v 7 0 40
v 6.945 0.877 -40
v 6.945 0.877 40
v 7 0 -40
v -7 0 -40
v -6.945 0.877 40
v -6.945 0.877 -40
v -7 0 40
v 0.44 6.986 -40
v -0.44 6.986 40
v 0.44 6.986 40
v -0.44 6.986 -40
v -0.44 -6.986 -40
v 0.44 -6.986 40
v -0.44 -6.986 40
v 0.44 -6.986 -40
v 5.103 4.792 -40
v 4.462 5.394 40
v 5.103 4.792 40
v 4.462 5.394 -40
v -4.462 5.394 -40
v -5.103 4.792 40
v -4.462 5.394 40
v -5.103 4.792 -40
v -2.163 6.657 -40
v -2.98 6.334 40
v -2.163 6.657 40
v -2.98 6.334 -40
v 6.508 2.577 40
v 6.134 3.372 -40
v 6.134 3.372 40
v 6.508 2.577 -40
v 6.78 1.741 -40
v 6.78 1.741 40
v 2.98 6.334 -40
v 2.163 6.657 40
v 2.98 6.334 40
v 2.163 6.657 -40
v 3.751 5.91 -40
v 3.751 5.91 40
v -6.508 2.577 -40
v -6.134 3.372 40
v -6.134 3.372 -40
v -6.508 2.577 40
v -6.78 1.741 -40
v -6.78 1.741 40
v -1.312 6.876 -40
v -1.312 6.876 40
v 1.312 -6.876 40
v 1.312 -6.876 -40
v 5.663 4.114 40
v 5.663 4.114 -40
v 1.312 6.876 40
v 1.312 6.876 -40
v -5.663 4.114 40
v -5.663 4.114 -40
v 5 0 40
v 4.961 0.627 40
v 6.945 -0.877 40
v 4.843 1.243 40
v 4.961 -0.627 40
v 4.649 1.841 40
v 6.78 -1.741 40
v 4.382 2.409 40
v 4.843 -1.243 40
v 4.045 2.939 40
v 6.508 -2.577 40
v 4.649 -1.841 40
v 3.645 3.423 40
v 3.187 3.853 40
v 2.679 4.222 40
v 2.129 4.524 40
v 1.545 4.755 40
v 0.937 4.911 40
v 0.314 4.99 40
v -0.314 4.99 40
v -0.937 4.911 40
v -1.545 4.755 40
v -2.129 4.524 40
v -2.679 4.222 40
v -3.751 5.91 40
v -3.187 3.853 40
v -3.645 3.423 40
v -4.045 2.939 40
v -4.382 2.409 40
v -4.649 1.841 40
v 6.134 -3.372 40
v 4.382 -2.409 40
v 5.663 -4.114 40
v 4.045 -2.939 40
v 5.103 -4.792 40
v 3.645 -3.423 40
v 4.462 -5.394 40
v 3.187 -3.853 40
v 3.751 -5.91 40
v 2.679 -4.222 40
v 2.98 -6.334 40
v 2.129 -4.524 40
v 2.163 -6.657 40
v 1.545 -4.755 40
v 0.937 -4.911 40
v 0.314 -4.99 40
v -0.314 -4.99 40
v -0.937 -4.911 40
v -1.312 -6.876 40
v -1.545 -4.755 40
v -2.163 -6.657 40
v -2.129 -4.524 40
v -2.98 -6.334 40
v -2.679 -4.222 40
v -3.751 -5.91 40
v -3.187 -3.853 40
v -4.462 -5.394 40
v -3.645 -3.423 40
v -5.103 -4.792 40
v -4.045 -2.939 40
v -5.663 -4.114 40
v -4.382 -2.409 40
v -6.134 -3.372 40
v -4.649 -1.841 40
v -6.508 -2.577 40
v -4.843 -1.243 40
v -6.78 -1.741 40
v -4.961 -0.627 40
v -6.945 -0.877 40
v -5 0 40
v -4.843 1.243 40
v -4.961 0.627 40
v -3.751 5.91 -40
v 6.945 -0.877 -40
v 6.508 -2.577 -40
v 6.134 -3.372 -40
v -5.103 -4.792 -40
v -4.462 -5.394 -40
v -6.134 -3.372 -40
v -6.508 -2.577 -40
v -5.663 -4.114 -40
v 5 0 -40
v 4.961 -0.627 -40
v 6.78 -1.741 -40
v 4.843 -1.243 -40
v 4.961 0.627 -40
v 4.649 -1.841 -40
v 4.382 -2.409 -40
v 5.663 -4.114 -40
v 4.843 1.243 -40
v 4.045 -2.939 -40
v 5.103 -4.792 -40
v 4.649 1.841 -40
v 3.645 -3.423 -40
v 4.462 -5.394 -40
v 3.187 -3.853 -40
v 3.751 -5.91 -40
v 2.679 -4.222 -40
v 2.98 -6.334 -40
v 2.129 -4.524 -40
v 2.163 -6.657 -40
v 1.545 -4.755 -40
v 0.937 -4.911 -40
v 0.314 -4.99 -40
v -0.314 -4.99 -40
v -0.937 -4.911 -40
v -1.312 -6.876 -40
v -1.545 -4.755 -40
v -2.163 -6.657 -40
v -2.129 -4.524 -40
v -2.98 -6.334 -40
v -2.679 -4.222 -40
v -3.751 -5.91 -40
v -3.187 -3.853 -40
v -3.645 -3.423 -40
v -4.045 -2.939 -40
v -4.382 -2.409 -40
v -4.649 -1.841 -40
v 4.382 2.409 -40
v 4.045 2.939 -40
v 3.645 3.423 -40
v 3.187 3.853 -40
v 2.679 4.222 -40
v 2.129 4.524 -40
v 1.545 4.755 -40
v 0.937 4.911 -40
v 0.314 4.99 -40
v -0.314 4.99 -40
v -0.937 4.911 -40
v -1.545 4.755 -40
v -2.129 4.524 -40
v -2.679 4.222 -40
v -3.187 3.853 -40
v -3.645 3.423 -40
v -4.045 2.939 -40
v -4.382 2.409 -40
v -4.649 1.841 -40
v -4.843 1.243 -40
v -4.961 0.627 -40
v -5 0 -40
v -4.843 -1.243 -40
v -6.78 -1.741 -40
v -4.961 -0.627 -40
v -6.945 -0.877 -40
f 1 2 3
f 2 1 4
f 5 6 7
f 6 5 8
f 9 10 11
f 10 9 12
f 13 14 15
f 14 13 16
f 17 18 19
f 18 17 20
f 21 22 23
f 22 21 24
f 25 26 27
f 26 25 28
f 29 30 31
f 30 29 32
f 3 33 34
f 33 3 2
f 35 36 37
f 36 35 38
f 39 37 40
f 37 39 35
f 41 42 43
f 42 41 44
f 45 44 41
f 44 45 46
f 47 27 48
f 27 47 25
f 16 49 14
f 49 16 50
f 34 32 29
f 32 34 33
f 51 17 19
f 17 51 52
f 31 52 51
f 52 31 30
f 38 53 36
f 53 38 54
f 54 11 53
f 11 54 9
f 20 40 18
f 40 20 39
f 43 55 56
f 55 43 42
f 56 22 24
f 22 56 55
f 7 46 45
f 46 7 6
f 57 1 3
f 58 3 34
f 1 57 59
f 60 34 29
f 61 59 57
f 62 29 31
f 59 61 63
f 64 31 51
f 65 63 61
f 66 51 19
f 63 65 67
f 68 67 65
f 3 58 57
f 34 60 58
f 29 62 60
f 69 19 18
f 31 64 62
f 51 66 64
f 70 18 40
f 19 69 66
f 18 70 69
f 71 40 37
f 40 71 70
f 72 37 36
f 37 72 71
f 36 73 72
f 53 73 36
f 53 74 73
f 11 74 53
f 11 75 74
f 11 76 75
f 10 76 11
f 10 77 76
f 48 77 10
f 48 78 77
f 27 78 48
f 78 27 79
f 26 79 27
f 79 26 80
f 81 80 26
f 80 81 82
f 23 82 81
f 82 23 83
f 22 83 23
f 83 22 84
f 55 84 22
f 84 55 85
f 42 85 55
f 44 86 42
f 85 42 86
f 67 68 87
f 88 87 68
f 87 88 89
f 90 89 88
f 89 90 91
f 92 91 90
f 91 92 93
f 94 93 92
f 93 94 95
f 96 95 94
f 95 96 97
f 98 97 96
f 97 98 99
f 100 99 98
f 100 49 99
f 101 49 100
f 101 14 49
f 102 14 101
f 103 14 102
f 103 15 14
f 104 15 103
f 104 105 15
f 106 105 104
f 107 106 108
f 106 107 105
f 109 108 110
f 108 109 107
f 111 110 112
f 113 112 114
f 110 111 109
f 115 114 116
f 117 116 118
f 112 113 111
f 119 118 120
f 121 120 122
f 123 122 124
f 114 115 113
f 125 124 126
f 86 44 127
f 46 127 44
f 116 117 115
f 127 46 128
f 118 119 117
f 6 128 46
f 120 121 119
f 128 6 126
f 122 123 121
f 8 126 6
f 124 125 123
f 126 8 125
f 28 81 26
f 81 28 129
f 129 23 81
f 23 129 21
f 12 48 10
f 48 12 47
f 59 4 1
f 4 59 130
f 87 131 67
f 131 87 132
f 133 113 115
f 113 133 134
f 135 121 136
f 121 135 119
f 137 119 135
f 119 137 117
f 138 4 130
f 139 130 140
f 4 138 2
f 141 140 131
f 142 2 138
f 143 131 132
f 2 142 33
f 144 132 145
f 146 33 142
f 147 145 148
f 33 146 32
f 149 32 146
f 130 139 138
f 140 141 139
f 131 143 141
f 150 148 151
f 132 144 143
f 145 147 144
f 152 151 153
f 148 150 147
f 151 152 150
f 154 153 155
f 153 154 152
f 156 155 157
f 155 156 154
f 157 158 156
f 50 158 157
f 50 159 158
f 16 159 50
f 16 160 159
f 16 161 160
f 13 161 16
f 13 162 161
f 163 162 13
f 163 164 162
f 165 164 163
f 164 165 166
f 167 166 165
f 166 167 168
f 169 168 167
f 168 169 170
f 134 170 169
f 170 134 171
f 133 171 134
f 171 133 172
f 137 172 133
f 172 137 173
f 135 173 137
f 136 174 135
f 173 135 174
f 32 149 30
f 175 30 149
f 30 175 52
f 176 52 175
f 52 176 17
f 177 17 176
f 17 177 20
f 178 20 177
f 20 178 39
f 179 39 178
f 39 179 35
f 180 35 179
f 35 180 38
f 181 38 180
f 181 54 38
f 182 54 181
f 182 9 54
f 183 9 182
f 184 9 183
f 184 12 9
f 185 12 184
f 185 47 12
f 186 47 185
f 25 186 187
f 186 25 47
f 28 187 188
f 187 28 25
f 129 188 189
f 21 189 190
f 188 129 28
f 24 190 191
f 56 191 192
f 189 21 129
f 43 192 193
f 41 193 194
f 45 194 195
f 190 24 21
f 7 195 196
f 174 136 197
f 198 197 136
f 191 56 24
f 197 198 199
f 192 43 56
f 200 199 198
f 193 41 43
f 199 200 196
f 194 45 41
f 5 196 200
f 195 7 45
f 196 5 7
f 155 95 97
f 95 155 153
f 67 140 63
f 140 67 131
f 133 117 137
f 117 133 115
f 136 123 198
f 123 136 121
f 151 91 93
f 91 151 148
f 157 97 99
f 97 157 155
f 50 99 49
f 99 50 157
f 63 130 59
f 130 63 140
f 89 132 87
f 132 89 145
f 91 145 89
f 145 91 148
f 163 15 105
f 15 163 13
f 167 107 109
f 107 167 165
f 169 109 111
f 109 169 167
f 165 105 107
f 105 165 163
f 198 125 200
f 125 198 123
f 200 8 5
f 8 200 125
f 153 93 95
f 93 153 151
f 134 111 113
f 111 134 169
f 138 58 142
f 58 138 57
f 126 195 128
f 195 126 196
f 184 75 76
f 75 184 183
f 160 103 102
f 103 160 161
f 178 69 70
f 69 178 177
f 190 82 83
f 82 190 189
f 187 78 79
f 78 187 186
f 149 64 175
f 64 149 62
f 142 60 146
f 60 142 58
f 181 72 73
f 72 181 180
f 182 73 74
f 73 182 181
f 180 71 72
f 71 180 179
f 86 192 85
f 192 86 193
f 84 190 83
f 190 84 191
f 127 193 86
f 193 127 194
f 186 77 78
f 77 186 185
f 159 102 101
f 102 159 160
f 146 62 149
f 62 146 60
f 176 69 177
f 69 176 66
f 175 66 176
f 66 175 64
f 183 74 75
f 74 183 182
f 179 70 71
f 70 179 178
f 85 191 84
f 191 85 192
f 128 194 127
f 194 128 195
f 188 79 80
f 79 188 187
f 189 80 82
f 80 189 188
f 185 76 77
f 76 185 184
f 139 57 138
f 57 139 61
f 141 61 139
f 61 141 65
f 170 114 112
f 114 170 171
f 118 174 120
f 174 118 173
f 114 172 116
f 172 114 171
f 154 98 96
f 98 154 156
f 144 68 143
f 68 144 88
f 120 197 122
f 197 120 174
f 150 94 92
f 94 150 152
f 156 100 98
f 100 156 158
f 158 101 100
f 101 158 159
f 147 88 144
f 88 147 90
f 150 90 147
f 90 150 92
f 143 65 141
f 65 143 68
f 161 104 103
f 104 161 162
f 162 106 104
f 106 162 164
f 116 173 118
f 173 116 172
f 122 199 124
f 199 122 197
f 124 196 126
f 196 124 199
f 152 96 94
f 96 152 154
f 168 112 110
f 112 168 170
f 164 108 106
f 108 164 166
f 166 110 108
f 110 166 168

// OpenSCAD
$fn = 50;


difference() {
	union() {
		translate(v = [0, 0, -40.0000000000]) {
			cylinder(h = 80, r = 7.0000000000);
		}
	}
	union() {
		translate(v = [0, 0, -100.0000000000]) {
			cylinder(h = 200, r = 5.0000000000);
		}
	}
}
